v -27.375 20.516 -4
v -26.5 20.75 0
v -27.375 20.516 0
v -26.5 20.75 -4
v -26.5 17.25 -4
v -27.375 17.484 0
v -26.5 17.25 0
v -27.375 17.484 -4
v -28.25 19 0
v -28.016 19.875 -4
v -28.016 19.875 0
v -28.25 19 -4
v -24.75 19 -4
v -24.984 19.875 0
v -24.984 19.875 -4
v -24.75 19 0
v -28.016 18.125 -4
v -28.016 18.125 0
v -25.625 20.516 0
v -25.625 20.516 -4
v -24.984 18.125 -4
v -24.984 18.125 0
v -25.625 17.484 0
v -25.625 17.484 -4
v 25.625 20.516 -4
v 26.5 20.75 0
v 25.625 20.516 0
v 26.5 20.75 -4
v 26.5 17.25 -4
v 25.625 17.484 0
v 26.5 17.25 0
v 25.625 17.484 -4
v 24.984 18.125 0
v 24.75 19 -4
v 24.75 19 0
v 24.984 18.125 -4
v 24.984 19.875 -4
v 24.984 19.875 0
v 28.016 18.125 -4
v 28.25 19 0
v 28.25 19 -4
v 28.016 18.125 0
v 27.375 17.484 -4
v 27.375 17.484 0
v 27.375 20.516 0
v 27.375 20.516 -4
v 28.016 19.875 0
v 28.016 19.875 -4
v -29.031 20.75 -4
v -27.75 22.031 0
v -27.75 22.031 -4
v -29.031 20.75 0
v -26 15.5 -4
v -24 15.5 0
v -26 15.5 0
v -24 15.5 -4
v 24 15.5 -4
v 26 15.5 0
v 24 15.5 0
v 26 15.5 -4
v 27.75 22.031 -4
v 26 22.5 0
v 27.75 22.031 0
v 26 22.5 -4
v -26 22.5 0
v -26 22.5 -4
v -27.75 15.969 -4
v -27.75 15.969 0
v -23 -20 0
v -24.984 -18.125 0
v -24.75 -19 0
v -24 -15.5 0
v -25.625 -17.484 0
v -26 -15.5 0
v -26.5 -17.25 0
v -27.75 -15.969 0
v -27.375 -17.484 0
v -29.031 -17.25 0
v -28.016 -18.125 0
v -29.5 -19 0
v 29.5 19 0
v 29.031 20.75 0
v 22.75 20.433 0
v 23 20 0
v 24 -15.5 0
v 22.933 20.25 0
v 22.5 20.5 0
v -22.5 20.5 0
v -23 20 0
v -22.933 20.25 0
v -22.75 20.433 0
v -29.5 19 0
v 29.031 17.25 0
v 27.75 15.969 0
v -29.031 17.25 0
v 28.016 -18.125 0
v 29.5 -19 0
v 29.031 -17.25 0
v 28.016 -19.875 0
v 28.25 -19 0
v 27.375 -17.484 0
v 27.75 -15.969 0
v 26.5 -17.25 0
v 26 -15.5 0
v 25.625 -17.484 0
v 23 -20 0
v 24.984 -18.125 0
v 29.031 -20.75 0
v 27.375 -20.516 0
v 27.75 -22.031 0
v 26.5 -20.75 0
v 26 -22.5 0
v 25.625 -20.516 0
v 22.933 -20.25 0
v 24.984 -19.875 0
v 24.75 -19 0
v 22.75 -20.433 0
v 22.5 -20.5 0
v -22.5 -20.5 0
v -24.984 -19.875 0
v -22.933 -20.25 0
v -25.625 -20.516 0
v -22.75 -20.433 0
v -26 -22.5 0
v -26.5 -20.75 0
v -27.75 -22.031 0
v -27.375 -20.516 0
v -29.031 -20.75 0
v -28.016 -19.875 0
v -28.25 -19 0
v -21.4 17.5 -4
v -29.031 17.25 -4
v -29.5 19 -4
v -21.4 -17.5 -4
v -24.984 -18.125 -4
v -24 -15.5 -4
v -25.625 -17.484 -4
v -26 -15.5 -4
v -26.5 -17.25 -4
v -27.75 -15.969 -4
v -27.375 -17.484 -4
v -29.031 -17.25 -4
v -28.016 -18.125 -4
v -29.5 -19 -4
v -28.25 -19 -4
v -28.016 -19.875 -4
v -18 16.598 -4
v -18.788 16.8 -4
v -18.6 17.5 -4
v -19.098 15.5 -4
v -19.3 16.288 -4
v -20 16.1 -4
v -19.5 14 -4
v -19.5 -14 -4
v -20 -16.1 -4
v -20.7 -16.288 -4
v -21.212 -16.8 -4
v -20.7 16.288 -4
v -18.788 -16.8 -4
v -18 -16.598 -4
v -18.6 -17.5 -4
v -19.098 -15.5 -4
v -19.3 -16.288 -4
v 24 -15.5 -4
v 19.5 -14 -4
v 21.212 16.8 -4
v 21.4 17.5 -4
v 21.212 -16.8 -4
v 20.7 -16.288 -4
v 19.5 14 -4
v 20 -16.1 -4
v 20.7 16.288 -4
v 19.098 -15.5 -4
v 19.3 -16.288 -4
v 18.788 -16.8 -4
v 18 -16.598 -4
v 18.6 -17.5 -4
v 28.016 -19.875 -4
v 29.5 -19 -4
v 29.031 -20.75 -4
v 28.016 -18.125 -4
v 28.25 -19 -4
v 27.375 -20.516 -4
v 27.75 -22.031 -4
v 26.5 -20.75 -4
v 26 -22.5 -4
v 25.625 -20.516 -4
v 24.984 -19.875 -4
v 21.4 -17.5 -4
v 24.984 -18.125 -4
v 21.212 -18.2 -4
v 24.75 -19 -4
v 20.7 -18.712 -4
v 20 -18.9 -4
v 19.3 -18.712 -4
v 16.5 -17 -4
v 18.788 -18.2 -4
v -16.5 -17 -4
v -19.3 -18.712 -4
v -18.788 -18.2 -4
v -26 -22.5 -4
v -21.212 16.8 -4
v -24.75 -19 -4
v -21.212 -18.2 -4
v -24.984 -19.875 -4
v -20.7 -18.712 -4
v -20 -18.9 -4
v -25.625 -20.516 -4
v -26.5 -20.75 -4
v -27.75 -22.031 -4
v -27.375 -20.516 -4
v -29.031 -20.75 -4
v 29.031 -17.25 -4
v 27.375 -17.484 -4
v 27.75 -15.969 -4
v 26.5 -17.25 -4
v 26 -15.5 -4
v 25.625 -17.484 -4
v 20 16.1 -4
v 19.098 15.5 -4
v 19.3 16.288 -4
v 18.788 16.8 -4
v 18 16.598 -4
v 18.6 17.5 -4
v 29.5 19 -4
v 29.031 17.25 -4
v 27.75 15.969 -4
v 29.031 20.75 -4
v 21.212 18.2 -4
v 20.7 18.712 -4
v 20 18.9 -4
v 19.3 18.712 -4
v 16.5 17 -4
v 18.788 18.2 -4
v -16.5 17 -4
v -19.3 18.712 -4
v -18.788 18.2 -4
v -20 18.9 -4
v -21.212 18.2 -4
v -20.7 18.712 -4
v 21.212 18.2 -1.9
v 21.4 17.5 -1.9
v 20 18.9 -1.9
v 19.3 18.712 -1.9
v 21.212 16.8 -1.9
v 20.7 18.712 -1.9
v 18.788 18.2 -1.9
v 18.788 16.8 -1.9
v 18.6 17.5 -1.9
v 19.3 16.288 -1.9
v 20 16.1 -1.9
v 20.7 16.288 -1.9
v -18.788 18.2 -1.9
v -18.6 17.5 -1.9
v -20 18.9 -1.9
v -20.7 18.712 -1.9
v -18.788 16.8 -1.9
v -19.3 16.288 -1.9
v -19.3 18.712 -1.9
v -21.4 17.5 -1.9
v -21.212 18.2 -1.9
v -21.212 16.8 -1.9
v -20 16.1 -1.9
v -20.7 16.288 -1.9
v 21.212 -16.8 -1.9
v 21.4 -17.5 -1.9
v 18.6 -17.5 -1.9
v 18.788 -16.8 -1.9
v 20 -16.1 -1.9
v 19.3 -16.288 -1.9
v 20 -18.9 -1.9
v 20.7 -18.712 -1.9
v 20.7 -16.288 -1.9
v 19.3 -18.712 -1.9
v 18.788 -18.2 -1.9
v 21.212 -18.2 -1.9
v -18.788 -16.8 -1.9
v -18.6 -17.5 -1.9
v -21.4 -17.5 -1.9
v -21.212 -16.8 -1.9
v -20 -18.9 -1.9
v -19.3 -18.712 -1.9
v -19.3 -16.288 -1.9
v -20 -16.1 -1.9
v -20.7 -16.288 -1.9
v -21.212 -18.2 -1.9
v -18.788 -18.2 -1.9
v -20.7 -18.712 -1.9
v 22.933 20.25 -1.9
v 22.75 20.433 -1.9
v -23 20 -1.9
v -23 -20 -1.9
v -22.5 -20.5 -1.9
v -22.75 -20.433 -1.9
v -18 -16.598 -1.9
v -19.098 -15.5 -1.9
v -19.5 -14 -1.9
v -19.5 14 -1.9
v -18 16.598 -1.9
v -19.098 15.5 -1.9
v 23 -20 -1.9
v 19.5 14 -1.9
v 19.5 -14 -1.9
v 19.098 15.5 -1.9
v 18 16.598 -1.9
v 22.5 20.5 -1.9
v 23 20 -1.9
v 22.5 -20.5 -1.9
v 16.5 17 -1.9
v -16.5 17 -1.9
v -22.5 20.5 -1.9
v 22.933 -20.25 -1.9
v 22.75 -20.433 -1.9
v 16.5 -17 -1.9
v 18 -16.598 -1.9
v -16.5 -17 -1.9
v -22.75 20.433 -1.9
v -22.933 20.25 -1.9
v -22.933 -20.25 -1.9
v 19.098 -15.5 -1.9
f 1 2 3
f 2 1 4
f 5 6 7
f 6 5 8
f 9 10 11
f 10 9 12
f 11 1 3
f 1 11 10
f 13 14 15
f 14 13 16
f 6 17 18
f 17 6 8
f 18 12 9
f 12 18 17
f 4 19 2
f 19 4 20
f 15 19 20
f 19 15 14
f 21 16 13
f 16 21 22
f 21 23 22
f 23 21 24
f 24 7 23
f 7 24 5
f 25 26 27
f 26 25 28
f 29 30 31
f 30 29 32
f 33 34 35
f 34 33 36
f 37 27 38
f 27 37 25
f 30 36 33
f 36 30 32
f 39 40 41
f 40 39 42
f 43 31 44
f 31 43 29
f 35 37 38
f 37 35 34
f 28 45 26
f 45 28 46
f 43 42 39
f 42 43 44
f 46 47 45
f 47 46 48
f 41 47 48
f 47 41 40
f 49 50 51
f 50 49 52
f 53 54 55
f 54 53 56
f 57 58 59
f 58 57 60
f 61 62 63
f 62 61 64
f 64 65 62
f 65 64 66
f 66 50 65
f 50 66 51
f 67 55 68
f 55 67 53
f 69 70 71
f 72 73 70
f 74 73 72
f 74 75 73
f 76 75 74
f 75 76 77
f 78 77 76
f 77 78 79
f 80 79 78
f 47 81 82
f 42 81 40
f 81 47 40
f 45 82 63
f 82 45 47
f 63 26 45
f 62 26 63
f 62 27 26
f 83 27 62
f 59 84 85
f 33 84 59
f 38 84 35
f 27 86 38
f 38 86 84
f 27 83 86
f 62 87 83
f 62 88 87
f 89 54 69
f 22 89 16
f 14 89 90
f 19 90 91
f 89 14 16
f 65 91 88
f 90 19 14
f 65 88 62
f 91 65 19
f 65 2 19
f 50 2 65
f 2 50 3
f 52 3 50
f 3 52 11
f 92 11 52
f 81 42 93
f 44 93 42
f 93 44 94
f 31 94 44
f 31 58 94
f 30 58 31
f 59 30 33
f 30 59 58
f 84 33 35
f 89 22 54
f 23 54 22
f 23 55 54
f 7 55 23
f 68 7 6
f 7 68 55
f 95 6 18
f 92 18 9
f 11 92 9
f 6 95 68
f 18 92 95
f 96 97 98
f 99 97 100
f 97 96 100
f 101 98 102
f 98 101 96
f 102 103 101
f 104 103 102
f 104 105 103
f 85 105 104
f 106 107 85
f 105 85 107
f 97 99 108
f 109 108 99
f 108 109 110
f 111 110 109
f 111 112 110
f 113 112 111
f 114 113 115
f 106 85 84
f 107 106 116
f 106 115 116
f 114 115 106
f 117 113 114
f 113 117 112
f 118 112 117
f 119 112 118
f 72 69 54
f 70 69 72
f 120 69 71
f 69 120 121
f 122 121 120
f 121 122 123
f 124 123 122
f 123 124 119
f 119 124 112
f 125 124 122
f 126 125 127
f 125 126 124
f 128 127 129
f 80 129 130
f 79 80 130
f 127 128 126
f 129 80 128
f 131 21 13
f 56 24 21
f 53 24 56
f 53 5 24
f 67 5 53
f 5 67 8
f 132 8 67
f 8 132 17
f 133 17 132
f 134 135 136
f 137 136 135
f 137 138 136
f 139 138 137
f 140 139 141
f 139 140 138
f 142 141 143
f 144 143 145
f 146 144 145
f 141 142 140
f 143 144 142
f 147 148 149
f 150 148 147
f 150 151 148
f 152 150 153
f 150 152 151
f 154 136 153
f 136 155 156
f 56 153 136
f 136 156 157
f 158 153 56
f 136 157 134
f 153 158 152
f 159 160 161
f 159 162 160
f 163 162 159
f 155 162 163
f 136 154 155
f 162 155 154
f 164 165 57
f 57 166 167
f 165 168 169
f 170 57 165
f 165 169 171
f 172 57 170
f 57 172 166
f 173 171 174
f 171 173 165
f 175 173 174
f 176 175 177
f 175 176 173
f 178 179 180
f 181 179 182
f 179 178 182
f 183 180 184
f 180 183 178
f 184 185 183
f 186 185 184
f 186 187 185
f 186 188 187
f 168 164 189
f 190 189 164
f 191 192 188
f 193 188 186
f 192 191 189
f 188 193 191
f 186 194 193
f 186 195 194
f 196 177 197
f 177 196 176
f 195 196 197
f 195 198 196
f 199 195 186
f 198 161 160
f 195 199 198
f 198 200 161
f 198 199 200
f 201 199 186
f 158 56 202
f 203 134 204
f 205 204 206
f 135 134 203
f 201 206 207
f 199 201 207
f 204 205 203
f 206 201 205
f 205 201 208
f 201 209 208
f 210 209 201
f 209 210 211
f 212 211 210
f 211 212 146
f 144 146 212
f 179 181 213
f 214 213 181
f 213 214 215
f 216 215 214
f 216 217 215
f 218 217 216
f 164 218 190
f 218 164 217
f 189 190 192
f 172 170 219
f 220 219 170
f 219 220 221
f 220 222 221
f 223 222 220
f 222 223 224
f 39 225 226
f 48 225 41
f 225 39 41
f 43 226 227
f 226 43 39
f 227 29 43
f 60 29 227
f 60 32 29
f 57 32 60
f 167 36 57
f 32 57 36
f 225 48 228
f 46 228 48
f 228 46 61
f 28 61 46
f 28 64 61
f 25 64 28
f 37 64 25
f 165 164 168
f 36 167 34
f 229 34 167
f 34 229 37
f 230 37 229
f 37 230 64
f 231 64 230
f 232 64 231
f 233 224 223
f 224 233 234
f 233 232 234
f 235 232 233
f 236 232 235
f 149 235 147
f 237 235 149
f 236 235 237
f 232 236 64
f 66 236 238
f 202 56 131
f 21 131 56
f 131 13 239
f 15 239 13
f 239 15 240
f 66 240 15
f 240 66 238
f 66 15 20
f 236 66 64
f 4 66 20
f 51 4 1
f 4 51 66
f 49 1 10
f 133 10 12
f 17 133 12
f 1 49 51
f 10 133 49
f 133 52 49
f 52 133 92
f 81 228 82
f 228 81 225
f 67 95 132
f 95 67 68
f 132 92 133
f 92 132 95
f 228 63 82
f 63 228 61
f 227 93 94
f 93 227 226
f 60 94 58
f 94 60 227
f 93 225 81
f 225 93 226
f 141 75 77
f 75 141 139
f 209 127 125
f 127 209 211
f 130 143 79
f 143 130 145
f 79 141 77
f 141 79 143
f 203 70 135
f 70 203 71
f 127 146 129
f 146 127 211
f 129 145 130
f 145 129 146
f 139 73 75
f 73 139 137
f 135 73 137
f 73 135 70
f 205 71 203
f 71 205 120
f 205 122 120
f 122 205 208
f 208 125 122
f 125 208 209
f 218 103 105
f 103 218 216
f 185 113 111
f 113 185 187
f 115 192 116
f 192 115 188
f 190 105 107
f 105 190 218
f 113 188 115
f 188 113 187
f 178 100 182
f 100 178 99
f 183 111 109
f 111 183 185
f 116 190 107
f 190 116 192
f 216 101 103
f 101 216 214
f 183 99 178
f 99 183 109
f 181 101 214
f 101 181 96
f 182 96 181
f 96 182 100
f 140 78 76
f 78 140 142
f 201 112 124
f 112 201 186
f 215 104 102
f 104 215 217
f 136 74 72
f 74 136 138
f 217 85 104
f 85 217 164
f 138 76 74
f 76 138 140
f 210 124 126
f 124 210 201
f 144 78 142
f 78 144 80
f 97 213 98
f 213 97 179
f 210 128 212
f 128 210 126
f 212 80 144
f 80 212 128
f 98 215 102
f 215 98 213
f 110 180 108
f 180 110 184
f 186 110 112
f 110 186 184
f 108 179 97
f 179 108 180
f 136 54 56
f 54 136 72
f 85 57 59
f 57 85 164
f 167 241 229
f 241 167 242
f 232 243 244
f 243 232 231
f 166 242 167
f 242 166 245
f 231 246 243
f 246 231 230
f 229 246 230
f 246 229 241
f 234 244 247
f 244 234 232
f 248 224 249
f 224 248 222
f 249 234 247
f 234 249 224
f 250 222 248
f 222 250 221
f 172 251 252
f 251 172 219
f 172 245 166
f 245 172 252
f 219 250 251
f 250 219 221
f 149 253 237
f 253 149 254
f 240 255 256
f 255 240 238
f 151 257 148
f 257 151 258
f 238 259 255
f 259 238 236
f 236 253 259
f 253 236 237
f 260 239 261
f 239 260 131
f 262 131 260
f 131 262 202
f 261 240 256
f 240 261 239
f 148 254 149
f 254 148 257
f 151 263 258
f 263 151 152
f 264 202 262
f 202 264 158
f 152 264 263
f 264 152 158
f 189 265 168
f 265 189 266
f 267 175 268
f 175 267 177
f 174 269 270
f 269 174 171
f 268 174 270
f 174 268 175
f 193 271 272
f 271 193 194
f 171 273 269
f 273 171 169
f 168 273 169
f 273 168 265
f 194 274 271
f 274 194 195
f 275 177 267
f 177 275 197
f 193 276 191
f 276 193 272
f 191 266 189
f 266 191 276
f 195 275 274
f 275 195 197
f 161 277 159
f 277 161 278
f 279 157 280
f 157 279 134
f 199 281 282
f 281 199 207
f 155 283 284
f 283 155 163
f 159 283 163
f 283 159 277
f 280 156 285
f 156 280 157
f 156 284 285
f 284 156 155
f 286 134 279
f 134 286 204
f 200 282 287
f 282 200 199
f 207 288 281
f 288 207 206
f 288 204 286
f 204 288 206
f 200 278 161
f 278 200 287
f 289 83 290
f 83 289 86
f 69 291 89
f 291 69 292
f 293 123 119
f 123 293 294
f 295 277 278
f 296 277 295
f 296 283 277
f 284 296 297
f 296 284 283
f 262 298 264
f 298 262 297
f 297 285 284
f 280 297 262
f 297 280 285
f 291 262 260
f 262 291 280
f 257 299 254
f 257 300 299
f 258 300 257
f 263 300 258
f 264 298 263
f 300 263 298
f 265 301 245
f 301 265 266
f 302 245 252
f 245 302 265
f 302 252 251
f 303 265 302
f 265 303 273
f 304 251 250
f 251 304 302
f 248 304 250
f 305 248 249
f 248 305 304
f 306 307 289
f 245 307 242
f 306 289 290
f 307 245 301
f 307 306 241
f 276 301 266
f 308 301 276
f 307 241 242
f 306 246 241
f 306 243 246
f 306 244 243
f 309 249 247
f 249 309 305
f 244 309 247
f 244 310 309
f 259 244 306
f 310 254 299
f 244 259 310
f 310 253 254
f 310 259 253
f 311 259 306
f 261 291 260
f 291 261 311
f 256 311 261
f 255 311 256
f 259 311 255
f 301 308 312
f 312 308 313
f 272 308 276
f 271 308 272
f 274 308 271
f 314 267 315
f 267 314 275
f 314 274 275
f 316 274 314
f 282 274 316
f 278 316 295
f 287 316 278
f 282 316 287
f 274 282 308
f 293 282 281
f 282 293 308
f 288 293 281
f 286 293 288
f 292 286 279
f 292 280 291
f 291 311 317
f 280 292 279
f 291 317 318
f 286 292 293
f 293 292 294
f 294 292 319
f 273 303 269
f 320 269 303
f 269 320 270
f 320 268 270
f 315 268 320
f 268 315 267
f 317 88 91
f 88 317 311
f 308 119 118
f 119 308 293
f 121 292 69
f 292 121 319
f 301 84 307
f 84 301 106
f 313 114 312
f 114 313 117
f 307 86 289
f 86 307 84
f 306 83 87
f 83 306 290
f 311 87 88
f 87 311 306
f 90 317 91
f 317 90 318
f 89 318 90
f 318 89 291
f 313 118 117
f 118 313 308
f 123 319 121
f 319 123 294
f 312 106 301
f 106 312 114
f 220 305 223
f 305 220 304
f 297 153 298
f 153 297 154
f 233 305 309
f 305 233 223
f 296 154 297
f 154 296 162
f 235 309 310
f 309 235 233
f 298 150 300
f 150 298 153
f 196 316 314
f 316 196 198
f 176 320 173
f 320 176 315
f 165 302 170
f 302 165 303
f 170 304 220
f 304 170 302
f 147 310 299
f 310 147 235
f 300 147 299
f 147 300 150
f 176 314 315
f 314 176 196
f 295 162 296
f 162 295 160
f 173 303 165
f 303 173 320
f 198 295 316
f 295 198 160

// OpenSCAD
$fn=12;

boardDepth = 40;
boardWidth = 45;
boardHeigth = 10;
boardErrorGap = 1;

boardThickness = 2;

boardHoleDepth = boardDepth - 5;
boardHoleWidth = boardWidth - 5;
boardHolediamiter = 3;

baseDepth = boardDepth + 2;
baseWidth = boardWidth + 2;
baseHeigth = boardThickness + 2;

baseCornerDiameter = 4;

//% board();

translate([0,0,-baseHeigth/2])
	base();
//feet();


////////////////////////////////////////////////////////////////////////////////////////////////////
module board(){
	difference(){
		plate4Point(boardWidth,boardDepth,boardThickness,1);
		for(a=[[1,1],[-1,1],[1,-1],[-1,-1]]){
			translate([
				a[0] * boardHoleWidth/2,
				a[1] * boardHoleDepth/2,
				0
			])
				cylinder(h=5,center=true);
		}
	}
}
////////////////////////////////////////////////////////////////////////////////////////////////////
module base(){

	difference(){
		// 
		union(){
			plate4Point(baseWidth+boardErrorGap,baseDepth+boardErrorGap,baseHeigth,4);
			rotate([0,0,90]) 
				feet();
		}
		for(a=[[1,1],[-1,1],[1,-1],[-1,-1]]){ // board mounting holes
			translate([
				a[0] * boardHoleWidth/2,
				a[1] * boardHoleDepth/2,
				0
			])
				cylinder(h=5,d=boardHolediamiter-.2,center=true);
		}
		// Board cut out
		translate([0,0,baseHeigth-2.9]) 
			plate4Point(
				boardWidth+boardErrorGap,
				boardDepth+boardErrorGap,
				boardThickness,1);
		// center cutout
		plate4Point(baseWidth-8,baseDepth-8,10,6);
	}

}
////////////////////////////////////////////////////////////////////////////////////////////////////
module feet(){
	
	lenAdd = 12;
	footLen = baseWidth + lenAdd;
	
 for(a=[1, -1]){
	translate([a*(baseDepth/2) - a*2, 0, 0]) 
		difference(){
			plate2Point(footLen, baseHeigth,7);
			for(b=[1,-1]){
				translate([0, b*(footLen/2) - b*3, 0])
					cylinder(h=5,d=boardHolediamiter+.5,center=true);
			}
		}
	}
}
////////////////////////////////////////////////////////////////////////////////////////////////////
module plate4Point(x,y,z,d){
	hull(){
		color("green") translate([(x/2)-(d/2) ,(y/2) -(d/2),0]) cylinder(h=z, d=d, center=true);
		color("blue")  translate([(x/2)-(d/2) ,-(y/2)+(d/2),0]) cylinder(h=z, d=d, center=true);
		color("red")   translate([-(x/2)+(d/2),(y/2) -(d/2),0]) cylinder(h=z, d=d, center=true);
		color("grey")  translate([-(x/2)+(d/2),-(y/2)+(d/2),0]) cylinder(h=z, d=d, center=true);
	}
}
////////////////////////////////////////////////////////////////////////////////////////////////////
module plate2Point(y,z,d){
	hull(){
		color("green") translate([0 ,(y/2) -(d/2),0]) cylinder(h=z, d=d, center=true);
		color("blue")  translate([0 ,-(y/2)+(d/2),0]) cylinder(h=z, d=d, center=true);
	}
}
